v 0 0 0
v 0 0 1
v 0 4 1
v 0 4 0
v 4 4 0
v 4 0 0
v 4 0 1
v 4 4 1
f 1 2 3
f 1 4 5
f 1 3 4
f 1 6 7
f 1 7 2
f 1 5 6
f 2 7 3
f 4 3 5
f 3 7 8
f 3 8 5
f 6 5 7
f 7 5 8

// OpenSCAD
/* Warning, this is a very basic generator with a lot of approximation 
input data : [QFN, UHX, 4x4x1.0mm, 12, , B, C04-00308B]
generated by com.zoubworld.electronics.cad.model3d.Basic
Date : Sun Feb 15 10:50:48 CET 2026
*/

//body
color("black")
translate([0,0,0])
cube([4.0,4.0,1.0], center=false);
